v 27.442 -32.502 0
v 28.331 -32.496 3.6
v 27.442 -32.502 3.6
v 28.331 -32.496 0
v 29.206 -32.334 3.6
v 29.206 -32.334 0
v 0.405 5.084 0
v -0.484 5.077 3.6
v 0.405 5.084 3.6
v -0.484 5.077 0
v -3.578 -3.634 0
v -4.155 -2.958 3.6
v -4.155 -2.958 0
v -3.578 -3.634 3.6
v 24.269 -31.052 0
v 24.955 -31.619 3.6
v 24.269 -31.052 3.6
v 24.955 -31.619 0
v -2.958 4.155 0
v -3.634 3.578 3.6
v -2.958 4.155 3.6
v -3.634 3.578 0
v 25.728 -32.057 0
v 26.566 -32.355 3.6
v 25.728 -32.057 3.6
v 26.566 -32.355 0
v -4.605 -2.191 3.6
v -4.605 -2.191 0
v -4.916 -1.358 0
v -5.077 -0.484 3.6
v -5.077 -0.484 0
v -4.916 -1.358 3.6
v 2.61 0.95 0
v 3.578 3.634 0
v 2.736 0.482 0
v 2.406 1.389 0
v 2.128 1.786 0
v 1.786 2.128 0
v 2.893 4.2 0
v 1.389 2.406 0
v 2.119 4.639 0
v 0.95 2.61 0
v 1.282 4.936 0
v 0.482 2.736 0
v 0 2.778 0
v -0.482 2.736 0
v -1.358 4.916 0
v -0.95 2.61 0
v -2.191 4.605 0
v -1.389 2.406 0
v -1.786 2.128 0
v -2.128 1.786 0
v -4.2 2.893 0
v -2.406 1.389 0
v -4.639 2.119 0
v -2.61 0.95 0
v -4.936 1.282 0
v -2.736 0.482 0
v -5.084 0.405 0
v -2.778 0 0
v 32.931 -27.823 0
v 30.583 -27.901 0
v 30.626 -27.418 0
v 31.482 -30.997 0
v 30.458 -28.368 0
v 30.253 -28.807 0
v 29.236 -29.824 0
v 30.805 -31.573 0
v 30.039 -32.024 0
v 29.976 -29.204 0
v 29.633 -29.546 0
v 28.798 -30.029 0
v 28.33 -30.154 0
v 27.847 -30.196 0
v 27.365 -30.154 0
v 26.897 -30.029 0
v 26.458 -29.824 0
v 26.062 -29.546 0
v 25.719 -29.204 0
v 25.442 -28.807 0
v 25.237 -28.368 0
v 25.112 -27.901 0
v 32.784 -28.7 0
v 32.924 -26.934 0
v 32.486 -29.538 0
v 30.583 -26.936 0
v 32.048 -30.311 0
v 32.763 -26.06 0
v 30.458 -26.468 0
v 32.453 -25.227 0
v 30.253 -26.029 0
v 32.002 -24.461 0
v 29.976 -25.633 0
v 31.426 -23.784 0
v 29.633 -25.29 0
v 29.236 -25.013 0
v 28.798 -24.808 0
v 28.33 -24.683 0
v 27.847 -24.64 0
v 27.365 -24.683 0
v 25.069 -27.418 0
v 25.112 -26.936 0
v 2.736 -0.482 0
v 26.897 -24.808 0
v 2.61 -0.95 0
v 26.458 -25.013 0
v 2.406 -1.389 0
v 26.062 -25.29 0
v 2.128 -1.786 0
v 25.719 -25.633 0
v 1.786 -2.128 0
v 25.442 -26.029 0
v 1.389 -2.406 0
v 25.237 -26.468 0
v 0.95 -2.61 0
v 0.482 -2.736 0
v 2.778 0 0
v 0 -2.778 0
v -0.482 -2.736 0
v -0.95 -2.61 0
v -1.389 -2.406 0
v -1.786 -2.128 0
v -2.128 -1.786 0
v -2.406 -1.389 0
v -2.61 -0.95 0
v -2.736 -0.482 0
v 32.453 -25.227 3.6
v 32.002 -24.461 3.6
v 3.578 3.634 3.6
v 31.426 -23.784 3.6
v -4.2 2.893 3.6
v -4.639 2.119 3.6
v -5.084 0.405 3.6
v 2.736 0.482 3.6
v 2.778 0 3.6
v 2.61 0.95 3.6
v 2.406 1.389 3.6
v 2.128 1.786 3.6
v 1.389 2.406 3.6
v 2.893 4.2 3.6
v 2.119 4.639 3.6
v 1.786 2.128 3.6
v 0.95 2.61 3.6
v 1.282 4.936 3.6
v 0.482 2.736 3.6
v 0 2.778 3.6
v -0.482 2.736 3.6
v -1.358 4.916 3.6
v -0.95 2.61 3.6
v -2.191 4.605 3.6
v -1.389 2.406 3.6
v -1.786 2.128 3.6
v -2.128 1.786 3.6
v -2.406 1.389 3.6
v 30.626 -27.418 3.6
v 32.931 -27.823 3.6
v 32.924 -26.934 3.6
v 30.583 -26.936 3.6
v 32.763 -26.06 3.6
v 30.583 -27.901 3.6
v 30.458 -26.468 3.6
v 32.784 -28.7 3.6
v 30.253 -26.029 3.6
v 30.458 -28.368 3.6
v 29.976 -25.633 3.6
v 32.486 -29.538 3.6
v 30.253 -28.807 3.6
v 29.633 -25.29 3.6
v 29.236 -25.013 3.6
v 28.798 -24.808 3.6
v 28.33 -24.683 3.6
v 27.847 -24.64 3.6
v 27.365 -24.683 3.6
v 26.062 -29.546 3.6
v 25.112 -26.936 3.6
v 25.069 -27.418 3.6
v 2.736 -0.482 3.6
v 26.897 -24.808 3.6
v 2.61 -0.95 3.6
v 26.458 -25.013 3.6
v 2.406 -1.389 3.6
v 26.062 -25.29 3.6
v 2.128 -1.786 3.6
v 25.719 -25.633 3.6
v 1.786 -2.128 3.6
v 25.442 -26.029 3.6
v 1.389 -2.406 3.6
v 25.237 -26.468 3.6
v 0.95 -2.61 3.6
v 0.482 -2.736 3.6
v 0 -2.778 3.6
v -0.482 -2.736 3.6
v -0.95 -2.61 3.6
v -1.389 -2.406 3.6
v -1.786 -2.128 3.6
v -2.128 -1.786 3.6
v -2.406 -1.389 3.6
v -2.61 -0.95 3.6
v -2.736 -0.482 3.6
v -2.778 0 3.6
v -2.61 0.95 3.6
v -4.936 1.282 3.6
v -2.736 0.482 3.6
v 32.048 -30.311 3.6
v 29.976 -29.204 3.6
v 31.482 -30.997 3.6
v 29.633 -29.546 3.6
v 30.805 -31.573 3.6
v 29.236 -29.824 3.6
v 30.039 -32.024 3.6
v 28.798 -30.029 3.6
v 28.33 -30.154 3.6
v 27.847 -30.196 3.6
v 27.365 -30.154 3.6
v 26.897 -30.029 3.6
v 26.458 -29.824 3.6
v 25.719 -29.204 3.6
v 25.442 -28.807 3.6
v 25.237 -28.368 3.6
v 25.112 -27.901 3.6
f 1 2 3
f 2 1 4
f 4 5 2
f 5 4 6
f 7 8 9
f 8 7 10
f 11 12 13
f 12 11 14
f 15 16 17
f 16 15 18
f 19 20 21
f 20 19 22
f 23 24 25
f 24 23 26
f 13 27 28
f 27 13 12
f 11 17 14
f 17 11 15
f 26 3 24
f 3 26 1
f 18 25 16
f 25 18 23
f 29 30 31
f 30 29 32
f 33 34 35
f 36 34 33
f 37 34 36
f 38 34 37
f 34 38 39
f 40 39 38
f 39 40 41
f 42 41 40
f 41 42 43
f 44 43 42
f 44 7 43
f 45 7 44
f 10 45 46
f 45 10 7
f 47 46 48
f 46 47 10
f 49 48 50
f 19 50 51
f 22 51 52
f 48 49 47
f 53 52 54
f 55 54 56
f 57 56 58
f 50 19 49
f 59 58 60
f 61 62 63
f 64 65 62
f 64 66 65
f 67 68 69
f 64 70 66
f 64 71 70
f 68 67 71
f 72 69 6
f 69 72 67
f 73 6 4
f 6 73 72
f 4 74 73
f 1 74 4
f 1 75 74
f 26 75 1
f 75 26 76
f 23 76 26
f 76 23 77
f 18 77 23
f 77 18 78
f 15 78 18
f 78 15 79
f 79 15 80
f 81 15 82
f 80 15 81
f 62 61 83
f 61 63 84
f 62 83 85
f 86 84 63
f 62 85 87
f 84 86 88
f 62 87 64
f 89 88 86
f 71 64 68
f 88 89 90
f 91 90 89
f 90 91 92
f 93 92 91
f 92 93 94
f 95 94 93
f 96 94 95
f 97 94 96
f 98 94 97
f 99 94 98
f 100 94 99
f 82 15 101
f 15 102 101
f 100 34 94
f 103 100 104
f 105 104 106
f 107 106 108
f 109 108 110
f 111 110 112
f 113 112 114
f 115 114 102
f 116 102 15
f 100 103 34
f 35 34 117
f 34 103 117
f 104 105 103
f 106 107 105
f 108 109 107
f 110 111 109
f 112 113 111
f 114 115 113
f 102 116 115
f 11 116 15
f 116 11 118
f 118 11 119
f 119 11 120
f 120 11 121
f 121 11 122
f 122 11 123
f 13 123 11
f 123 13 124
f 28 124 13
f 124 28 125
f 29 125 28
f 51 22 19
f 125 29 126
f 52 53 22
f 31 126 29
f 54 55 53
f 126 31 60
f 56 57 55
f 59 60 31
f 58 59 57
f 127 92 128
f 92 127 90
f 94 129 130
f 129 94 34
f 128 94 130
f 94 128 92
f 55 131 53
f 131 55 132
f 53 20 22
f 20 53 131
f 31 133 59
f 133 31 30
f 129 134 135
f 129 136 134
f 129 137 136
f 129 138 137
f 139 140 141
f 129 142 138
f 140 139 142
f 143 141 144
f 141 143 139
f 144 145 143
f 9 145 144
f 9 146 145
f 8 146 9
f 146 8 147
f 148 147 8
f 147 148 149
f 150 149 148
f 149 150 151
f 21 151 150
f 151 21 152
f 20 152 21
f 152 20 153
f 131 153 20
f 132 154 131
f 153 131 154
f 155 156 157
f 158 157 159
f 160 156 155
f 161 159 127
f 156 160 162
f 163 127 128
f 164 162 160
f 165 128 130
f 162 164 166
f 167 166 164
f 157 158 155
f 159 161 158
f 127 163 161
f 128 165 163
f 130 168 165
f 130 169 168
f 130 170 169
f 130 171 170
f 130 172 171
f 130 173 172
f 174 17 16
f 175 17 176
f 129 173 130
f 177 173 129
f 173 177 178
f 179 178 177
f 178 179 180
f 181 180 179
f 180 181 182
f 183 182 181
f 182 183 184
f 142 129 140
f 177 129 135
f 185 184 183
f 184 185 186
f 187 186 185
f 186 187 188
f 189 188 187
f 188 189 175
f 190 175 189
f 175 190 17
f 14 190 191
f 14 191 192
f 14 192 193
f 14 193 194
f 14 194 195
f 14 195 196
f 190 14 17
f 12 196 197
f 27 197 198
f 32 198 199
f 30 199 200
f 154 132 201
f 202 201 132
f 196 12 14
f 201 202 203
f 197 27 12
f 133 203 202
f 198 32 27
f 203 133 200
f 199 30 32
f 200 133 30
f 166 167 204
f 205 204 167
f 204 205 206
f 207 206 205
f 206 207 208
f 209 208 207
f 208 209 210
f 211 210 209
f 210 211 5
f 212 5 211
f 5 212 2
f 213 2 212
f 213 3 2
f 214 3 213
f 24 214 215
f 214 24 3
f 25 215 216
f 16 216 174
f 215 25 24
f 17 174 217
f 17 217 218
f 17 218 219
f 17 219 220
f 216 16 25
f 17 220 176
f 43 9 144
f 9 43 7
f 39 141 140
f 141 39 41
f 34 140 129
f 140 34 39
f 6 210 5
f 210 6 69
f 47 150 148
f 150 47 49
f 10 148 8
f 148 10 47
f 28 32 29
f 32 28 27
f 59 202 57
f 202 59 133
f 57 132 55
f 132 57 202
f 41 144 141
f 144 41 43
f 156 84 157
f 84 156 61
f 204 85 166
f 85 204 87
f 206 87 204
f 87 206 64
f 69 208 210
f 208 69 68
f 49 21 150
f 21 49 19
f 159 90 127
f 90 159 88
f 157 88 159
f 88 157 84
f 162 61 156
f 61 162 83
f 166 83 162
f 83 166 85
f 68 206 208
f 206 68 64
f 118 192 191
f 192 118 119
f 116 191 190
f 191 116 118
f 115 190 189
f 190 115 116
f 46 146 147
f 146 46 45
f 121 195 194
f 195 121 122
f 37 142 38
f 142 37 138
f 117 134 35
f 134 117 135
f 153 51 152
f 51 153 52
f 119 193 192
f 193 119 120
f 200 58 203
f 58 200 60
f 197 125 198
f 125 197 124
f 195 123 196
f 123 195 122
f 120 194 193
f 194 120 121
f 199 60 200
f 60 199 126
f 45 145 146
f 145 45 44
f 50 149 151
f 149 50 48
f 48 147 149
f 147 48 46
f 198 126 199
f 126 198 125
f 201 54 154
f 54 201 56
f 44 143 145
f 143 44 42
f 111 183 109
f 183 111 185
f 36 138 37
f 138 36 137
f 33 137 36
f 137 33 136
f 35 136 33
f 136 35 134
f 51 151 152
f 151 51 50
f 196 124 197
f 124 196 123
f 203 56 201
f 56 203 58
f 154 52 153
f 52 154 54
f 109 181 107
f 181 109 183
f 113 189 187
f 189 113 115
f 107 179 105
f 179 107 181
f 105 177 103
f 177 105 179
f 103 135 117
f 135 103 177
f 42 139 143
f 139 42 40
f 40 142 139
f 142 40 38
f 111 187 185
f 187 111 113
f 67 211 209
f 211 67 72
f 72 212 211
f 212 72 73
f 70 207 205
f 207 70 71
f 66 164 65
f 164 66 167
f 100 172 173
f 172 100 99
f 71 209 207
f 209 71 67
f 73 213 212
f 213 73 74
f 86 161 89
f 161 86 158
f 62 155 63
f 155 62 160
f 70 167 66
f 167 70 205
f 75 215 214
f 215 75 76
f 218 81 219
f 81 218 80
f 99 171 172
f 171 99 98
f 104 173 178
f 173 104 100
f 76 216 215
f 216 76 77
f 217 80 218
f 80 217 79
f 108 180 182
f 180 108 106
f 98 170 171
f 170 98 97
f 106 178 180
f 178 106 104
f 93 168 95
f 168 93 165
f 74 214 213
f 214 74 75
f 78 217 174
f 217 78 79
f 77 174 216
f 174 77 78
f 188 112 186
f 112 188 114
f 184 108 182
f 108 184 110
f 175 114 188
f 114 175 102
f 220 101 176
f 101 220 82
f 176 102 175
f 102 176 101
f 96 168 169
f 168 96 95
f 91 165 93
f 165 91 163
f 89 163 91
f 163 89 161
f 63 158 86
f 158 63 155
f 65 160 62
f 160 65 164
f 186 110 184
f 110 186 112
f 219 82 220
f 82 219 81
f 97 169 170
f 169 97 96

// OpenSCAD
scale([6,6,6]){
difference() {
	linear_extrude(height=0.6) {
		polygon( points=[[0.596357,0.605688], [0.48212,0.700043], [0.353235,0.773127], [0.213616,0.82272], [0.0675071,0.847315], [-0.0806532,0.846165], [-0.226363,0.819305], [-0.365195,0.76755], [-0.49293,0.692474], [-0.605688,0.596357], [-0.700043,0.48212], [-0.773127,0.353235], [-0.82272,0.213616], [-0.847315,0.0675071], [-0.846165,-0.0806532], [-0.819305,-0.226363], [-0.76755,-0.365195], [-0.692474,-0.49293], [-0.596357,-0.605688], [4.04489,-5.17543], [4.15913,-5.26979], [4.28801,-5.34287], [4.42763,-5.39247], [4.57374,-5.41706], [4.7219,-5.41591], [4.86761,-5.38905], [5.00644,-5.3373], [5.13418,-5.26222], [5.24694,-5.1661], [5.34129,-5.05187], [5.41438,-4.92298], [5.46397,-4.78336], [5.48856,-4.63725], [5.48741,-4.48909], [5.46055,-4.34338], [5.4088,-4.20455], [5.33372,-4.07682], [5.23761,-3.96406]]);
	}
	translate([0,0,-0.1]) {
		linear_extrude(height=0.8) {
			polygon( points=[[0.463,0], [0.455966,0.0803991], [0.435078,0.158355], [0.40097,0.2315], [0.354679,0.297611], [0.297611,0.354679], [0.2315,0.40097], [0.158355,0.435078], [0.0803991,0.455966], [8.31037e-10,0.463], [-0.0803991,0.455966], [-0.158355,0.435078], [-0.2315,0.40097], [-0.297611,0.354679], [-0.354679,0.297611], [-0.40097,0.2315], [-0.435078,0.158355], [-0.455966,0.0803991], [-0.463,1.66207e-09], [-0.455966,-0.0803991], [-0.435078,-0.158355], [-0.40097,-0.2315], [-0.354679,-0.297611], [-0.297611,-0.354679], [-0.2315,-0.40097], [-0.158355,-0.435078], [-0.0803991,-0.455966], [-2.49311e-09,-0.463], [0.0803991,-0.455966], [0.158355,-0.435078], [0.2315,-0.40097], [0.297611,-0.354679], [0.354679,-0.297611], [0.40097,-0.2315], [0.435078,-0.158355], [0.455966,-0.0803991]]);
		}
	}
	translate([0,0,-0.1]) {
		linear_extrude(height=0.8) {
			polygon( points=[[5.10425,-4.56975], [5.09721,-4.48935], [5.07633,-4.41139], [5.04222,-4.33825], [4.99593,-4.27213], [4.93886,-4.21507], [4.87275,-4.16878], [4.7996,-4.13467], [4.72165,-4.11378], [4.64125,-4.10675], [4.56085,-4.11378], [4.48289,-4.13467], [4.40975,-4.16878], [4.34364,-4.21507], [4.28657,-4.27213], [4.24028,-4.33825], [4.20617,-4.41139], [4.18528,-4.48935], [4.17825,-4.56975], [4.18528,-4.65014], [4.20617,-4.7281], [4.24028,-4.80125], [4.28657,-4.86736], [4.34364,-4.92442], [4.40975,-4.97072], [4.48289,-5.00482], [4.56085,-5.02571], [4.64125,-5.03275], [4.72165,-5.02571], [4.7996,-5.00482], [4.87275,-4.97072], [4.93886,-4.92442], [4.99593,-4.86736], [5.04222,-4.80125], [5.07633,-4.7281], [5.09721,-4.65014]]);
		}
	}
}
}
